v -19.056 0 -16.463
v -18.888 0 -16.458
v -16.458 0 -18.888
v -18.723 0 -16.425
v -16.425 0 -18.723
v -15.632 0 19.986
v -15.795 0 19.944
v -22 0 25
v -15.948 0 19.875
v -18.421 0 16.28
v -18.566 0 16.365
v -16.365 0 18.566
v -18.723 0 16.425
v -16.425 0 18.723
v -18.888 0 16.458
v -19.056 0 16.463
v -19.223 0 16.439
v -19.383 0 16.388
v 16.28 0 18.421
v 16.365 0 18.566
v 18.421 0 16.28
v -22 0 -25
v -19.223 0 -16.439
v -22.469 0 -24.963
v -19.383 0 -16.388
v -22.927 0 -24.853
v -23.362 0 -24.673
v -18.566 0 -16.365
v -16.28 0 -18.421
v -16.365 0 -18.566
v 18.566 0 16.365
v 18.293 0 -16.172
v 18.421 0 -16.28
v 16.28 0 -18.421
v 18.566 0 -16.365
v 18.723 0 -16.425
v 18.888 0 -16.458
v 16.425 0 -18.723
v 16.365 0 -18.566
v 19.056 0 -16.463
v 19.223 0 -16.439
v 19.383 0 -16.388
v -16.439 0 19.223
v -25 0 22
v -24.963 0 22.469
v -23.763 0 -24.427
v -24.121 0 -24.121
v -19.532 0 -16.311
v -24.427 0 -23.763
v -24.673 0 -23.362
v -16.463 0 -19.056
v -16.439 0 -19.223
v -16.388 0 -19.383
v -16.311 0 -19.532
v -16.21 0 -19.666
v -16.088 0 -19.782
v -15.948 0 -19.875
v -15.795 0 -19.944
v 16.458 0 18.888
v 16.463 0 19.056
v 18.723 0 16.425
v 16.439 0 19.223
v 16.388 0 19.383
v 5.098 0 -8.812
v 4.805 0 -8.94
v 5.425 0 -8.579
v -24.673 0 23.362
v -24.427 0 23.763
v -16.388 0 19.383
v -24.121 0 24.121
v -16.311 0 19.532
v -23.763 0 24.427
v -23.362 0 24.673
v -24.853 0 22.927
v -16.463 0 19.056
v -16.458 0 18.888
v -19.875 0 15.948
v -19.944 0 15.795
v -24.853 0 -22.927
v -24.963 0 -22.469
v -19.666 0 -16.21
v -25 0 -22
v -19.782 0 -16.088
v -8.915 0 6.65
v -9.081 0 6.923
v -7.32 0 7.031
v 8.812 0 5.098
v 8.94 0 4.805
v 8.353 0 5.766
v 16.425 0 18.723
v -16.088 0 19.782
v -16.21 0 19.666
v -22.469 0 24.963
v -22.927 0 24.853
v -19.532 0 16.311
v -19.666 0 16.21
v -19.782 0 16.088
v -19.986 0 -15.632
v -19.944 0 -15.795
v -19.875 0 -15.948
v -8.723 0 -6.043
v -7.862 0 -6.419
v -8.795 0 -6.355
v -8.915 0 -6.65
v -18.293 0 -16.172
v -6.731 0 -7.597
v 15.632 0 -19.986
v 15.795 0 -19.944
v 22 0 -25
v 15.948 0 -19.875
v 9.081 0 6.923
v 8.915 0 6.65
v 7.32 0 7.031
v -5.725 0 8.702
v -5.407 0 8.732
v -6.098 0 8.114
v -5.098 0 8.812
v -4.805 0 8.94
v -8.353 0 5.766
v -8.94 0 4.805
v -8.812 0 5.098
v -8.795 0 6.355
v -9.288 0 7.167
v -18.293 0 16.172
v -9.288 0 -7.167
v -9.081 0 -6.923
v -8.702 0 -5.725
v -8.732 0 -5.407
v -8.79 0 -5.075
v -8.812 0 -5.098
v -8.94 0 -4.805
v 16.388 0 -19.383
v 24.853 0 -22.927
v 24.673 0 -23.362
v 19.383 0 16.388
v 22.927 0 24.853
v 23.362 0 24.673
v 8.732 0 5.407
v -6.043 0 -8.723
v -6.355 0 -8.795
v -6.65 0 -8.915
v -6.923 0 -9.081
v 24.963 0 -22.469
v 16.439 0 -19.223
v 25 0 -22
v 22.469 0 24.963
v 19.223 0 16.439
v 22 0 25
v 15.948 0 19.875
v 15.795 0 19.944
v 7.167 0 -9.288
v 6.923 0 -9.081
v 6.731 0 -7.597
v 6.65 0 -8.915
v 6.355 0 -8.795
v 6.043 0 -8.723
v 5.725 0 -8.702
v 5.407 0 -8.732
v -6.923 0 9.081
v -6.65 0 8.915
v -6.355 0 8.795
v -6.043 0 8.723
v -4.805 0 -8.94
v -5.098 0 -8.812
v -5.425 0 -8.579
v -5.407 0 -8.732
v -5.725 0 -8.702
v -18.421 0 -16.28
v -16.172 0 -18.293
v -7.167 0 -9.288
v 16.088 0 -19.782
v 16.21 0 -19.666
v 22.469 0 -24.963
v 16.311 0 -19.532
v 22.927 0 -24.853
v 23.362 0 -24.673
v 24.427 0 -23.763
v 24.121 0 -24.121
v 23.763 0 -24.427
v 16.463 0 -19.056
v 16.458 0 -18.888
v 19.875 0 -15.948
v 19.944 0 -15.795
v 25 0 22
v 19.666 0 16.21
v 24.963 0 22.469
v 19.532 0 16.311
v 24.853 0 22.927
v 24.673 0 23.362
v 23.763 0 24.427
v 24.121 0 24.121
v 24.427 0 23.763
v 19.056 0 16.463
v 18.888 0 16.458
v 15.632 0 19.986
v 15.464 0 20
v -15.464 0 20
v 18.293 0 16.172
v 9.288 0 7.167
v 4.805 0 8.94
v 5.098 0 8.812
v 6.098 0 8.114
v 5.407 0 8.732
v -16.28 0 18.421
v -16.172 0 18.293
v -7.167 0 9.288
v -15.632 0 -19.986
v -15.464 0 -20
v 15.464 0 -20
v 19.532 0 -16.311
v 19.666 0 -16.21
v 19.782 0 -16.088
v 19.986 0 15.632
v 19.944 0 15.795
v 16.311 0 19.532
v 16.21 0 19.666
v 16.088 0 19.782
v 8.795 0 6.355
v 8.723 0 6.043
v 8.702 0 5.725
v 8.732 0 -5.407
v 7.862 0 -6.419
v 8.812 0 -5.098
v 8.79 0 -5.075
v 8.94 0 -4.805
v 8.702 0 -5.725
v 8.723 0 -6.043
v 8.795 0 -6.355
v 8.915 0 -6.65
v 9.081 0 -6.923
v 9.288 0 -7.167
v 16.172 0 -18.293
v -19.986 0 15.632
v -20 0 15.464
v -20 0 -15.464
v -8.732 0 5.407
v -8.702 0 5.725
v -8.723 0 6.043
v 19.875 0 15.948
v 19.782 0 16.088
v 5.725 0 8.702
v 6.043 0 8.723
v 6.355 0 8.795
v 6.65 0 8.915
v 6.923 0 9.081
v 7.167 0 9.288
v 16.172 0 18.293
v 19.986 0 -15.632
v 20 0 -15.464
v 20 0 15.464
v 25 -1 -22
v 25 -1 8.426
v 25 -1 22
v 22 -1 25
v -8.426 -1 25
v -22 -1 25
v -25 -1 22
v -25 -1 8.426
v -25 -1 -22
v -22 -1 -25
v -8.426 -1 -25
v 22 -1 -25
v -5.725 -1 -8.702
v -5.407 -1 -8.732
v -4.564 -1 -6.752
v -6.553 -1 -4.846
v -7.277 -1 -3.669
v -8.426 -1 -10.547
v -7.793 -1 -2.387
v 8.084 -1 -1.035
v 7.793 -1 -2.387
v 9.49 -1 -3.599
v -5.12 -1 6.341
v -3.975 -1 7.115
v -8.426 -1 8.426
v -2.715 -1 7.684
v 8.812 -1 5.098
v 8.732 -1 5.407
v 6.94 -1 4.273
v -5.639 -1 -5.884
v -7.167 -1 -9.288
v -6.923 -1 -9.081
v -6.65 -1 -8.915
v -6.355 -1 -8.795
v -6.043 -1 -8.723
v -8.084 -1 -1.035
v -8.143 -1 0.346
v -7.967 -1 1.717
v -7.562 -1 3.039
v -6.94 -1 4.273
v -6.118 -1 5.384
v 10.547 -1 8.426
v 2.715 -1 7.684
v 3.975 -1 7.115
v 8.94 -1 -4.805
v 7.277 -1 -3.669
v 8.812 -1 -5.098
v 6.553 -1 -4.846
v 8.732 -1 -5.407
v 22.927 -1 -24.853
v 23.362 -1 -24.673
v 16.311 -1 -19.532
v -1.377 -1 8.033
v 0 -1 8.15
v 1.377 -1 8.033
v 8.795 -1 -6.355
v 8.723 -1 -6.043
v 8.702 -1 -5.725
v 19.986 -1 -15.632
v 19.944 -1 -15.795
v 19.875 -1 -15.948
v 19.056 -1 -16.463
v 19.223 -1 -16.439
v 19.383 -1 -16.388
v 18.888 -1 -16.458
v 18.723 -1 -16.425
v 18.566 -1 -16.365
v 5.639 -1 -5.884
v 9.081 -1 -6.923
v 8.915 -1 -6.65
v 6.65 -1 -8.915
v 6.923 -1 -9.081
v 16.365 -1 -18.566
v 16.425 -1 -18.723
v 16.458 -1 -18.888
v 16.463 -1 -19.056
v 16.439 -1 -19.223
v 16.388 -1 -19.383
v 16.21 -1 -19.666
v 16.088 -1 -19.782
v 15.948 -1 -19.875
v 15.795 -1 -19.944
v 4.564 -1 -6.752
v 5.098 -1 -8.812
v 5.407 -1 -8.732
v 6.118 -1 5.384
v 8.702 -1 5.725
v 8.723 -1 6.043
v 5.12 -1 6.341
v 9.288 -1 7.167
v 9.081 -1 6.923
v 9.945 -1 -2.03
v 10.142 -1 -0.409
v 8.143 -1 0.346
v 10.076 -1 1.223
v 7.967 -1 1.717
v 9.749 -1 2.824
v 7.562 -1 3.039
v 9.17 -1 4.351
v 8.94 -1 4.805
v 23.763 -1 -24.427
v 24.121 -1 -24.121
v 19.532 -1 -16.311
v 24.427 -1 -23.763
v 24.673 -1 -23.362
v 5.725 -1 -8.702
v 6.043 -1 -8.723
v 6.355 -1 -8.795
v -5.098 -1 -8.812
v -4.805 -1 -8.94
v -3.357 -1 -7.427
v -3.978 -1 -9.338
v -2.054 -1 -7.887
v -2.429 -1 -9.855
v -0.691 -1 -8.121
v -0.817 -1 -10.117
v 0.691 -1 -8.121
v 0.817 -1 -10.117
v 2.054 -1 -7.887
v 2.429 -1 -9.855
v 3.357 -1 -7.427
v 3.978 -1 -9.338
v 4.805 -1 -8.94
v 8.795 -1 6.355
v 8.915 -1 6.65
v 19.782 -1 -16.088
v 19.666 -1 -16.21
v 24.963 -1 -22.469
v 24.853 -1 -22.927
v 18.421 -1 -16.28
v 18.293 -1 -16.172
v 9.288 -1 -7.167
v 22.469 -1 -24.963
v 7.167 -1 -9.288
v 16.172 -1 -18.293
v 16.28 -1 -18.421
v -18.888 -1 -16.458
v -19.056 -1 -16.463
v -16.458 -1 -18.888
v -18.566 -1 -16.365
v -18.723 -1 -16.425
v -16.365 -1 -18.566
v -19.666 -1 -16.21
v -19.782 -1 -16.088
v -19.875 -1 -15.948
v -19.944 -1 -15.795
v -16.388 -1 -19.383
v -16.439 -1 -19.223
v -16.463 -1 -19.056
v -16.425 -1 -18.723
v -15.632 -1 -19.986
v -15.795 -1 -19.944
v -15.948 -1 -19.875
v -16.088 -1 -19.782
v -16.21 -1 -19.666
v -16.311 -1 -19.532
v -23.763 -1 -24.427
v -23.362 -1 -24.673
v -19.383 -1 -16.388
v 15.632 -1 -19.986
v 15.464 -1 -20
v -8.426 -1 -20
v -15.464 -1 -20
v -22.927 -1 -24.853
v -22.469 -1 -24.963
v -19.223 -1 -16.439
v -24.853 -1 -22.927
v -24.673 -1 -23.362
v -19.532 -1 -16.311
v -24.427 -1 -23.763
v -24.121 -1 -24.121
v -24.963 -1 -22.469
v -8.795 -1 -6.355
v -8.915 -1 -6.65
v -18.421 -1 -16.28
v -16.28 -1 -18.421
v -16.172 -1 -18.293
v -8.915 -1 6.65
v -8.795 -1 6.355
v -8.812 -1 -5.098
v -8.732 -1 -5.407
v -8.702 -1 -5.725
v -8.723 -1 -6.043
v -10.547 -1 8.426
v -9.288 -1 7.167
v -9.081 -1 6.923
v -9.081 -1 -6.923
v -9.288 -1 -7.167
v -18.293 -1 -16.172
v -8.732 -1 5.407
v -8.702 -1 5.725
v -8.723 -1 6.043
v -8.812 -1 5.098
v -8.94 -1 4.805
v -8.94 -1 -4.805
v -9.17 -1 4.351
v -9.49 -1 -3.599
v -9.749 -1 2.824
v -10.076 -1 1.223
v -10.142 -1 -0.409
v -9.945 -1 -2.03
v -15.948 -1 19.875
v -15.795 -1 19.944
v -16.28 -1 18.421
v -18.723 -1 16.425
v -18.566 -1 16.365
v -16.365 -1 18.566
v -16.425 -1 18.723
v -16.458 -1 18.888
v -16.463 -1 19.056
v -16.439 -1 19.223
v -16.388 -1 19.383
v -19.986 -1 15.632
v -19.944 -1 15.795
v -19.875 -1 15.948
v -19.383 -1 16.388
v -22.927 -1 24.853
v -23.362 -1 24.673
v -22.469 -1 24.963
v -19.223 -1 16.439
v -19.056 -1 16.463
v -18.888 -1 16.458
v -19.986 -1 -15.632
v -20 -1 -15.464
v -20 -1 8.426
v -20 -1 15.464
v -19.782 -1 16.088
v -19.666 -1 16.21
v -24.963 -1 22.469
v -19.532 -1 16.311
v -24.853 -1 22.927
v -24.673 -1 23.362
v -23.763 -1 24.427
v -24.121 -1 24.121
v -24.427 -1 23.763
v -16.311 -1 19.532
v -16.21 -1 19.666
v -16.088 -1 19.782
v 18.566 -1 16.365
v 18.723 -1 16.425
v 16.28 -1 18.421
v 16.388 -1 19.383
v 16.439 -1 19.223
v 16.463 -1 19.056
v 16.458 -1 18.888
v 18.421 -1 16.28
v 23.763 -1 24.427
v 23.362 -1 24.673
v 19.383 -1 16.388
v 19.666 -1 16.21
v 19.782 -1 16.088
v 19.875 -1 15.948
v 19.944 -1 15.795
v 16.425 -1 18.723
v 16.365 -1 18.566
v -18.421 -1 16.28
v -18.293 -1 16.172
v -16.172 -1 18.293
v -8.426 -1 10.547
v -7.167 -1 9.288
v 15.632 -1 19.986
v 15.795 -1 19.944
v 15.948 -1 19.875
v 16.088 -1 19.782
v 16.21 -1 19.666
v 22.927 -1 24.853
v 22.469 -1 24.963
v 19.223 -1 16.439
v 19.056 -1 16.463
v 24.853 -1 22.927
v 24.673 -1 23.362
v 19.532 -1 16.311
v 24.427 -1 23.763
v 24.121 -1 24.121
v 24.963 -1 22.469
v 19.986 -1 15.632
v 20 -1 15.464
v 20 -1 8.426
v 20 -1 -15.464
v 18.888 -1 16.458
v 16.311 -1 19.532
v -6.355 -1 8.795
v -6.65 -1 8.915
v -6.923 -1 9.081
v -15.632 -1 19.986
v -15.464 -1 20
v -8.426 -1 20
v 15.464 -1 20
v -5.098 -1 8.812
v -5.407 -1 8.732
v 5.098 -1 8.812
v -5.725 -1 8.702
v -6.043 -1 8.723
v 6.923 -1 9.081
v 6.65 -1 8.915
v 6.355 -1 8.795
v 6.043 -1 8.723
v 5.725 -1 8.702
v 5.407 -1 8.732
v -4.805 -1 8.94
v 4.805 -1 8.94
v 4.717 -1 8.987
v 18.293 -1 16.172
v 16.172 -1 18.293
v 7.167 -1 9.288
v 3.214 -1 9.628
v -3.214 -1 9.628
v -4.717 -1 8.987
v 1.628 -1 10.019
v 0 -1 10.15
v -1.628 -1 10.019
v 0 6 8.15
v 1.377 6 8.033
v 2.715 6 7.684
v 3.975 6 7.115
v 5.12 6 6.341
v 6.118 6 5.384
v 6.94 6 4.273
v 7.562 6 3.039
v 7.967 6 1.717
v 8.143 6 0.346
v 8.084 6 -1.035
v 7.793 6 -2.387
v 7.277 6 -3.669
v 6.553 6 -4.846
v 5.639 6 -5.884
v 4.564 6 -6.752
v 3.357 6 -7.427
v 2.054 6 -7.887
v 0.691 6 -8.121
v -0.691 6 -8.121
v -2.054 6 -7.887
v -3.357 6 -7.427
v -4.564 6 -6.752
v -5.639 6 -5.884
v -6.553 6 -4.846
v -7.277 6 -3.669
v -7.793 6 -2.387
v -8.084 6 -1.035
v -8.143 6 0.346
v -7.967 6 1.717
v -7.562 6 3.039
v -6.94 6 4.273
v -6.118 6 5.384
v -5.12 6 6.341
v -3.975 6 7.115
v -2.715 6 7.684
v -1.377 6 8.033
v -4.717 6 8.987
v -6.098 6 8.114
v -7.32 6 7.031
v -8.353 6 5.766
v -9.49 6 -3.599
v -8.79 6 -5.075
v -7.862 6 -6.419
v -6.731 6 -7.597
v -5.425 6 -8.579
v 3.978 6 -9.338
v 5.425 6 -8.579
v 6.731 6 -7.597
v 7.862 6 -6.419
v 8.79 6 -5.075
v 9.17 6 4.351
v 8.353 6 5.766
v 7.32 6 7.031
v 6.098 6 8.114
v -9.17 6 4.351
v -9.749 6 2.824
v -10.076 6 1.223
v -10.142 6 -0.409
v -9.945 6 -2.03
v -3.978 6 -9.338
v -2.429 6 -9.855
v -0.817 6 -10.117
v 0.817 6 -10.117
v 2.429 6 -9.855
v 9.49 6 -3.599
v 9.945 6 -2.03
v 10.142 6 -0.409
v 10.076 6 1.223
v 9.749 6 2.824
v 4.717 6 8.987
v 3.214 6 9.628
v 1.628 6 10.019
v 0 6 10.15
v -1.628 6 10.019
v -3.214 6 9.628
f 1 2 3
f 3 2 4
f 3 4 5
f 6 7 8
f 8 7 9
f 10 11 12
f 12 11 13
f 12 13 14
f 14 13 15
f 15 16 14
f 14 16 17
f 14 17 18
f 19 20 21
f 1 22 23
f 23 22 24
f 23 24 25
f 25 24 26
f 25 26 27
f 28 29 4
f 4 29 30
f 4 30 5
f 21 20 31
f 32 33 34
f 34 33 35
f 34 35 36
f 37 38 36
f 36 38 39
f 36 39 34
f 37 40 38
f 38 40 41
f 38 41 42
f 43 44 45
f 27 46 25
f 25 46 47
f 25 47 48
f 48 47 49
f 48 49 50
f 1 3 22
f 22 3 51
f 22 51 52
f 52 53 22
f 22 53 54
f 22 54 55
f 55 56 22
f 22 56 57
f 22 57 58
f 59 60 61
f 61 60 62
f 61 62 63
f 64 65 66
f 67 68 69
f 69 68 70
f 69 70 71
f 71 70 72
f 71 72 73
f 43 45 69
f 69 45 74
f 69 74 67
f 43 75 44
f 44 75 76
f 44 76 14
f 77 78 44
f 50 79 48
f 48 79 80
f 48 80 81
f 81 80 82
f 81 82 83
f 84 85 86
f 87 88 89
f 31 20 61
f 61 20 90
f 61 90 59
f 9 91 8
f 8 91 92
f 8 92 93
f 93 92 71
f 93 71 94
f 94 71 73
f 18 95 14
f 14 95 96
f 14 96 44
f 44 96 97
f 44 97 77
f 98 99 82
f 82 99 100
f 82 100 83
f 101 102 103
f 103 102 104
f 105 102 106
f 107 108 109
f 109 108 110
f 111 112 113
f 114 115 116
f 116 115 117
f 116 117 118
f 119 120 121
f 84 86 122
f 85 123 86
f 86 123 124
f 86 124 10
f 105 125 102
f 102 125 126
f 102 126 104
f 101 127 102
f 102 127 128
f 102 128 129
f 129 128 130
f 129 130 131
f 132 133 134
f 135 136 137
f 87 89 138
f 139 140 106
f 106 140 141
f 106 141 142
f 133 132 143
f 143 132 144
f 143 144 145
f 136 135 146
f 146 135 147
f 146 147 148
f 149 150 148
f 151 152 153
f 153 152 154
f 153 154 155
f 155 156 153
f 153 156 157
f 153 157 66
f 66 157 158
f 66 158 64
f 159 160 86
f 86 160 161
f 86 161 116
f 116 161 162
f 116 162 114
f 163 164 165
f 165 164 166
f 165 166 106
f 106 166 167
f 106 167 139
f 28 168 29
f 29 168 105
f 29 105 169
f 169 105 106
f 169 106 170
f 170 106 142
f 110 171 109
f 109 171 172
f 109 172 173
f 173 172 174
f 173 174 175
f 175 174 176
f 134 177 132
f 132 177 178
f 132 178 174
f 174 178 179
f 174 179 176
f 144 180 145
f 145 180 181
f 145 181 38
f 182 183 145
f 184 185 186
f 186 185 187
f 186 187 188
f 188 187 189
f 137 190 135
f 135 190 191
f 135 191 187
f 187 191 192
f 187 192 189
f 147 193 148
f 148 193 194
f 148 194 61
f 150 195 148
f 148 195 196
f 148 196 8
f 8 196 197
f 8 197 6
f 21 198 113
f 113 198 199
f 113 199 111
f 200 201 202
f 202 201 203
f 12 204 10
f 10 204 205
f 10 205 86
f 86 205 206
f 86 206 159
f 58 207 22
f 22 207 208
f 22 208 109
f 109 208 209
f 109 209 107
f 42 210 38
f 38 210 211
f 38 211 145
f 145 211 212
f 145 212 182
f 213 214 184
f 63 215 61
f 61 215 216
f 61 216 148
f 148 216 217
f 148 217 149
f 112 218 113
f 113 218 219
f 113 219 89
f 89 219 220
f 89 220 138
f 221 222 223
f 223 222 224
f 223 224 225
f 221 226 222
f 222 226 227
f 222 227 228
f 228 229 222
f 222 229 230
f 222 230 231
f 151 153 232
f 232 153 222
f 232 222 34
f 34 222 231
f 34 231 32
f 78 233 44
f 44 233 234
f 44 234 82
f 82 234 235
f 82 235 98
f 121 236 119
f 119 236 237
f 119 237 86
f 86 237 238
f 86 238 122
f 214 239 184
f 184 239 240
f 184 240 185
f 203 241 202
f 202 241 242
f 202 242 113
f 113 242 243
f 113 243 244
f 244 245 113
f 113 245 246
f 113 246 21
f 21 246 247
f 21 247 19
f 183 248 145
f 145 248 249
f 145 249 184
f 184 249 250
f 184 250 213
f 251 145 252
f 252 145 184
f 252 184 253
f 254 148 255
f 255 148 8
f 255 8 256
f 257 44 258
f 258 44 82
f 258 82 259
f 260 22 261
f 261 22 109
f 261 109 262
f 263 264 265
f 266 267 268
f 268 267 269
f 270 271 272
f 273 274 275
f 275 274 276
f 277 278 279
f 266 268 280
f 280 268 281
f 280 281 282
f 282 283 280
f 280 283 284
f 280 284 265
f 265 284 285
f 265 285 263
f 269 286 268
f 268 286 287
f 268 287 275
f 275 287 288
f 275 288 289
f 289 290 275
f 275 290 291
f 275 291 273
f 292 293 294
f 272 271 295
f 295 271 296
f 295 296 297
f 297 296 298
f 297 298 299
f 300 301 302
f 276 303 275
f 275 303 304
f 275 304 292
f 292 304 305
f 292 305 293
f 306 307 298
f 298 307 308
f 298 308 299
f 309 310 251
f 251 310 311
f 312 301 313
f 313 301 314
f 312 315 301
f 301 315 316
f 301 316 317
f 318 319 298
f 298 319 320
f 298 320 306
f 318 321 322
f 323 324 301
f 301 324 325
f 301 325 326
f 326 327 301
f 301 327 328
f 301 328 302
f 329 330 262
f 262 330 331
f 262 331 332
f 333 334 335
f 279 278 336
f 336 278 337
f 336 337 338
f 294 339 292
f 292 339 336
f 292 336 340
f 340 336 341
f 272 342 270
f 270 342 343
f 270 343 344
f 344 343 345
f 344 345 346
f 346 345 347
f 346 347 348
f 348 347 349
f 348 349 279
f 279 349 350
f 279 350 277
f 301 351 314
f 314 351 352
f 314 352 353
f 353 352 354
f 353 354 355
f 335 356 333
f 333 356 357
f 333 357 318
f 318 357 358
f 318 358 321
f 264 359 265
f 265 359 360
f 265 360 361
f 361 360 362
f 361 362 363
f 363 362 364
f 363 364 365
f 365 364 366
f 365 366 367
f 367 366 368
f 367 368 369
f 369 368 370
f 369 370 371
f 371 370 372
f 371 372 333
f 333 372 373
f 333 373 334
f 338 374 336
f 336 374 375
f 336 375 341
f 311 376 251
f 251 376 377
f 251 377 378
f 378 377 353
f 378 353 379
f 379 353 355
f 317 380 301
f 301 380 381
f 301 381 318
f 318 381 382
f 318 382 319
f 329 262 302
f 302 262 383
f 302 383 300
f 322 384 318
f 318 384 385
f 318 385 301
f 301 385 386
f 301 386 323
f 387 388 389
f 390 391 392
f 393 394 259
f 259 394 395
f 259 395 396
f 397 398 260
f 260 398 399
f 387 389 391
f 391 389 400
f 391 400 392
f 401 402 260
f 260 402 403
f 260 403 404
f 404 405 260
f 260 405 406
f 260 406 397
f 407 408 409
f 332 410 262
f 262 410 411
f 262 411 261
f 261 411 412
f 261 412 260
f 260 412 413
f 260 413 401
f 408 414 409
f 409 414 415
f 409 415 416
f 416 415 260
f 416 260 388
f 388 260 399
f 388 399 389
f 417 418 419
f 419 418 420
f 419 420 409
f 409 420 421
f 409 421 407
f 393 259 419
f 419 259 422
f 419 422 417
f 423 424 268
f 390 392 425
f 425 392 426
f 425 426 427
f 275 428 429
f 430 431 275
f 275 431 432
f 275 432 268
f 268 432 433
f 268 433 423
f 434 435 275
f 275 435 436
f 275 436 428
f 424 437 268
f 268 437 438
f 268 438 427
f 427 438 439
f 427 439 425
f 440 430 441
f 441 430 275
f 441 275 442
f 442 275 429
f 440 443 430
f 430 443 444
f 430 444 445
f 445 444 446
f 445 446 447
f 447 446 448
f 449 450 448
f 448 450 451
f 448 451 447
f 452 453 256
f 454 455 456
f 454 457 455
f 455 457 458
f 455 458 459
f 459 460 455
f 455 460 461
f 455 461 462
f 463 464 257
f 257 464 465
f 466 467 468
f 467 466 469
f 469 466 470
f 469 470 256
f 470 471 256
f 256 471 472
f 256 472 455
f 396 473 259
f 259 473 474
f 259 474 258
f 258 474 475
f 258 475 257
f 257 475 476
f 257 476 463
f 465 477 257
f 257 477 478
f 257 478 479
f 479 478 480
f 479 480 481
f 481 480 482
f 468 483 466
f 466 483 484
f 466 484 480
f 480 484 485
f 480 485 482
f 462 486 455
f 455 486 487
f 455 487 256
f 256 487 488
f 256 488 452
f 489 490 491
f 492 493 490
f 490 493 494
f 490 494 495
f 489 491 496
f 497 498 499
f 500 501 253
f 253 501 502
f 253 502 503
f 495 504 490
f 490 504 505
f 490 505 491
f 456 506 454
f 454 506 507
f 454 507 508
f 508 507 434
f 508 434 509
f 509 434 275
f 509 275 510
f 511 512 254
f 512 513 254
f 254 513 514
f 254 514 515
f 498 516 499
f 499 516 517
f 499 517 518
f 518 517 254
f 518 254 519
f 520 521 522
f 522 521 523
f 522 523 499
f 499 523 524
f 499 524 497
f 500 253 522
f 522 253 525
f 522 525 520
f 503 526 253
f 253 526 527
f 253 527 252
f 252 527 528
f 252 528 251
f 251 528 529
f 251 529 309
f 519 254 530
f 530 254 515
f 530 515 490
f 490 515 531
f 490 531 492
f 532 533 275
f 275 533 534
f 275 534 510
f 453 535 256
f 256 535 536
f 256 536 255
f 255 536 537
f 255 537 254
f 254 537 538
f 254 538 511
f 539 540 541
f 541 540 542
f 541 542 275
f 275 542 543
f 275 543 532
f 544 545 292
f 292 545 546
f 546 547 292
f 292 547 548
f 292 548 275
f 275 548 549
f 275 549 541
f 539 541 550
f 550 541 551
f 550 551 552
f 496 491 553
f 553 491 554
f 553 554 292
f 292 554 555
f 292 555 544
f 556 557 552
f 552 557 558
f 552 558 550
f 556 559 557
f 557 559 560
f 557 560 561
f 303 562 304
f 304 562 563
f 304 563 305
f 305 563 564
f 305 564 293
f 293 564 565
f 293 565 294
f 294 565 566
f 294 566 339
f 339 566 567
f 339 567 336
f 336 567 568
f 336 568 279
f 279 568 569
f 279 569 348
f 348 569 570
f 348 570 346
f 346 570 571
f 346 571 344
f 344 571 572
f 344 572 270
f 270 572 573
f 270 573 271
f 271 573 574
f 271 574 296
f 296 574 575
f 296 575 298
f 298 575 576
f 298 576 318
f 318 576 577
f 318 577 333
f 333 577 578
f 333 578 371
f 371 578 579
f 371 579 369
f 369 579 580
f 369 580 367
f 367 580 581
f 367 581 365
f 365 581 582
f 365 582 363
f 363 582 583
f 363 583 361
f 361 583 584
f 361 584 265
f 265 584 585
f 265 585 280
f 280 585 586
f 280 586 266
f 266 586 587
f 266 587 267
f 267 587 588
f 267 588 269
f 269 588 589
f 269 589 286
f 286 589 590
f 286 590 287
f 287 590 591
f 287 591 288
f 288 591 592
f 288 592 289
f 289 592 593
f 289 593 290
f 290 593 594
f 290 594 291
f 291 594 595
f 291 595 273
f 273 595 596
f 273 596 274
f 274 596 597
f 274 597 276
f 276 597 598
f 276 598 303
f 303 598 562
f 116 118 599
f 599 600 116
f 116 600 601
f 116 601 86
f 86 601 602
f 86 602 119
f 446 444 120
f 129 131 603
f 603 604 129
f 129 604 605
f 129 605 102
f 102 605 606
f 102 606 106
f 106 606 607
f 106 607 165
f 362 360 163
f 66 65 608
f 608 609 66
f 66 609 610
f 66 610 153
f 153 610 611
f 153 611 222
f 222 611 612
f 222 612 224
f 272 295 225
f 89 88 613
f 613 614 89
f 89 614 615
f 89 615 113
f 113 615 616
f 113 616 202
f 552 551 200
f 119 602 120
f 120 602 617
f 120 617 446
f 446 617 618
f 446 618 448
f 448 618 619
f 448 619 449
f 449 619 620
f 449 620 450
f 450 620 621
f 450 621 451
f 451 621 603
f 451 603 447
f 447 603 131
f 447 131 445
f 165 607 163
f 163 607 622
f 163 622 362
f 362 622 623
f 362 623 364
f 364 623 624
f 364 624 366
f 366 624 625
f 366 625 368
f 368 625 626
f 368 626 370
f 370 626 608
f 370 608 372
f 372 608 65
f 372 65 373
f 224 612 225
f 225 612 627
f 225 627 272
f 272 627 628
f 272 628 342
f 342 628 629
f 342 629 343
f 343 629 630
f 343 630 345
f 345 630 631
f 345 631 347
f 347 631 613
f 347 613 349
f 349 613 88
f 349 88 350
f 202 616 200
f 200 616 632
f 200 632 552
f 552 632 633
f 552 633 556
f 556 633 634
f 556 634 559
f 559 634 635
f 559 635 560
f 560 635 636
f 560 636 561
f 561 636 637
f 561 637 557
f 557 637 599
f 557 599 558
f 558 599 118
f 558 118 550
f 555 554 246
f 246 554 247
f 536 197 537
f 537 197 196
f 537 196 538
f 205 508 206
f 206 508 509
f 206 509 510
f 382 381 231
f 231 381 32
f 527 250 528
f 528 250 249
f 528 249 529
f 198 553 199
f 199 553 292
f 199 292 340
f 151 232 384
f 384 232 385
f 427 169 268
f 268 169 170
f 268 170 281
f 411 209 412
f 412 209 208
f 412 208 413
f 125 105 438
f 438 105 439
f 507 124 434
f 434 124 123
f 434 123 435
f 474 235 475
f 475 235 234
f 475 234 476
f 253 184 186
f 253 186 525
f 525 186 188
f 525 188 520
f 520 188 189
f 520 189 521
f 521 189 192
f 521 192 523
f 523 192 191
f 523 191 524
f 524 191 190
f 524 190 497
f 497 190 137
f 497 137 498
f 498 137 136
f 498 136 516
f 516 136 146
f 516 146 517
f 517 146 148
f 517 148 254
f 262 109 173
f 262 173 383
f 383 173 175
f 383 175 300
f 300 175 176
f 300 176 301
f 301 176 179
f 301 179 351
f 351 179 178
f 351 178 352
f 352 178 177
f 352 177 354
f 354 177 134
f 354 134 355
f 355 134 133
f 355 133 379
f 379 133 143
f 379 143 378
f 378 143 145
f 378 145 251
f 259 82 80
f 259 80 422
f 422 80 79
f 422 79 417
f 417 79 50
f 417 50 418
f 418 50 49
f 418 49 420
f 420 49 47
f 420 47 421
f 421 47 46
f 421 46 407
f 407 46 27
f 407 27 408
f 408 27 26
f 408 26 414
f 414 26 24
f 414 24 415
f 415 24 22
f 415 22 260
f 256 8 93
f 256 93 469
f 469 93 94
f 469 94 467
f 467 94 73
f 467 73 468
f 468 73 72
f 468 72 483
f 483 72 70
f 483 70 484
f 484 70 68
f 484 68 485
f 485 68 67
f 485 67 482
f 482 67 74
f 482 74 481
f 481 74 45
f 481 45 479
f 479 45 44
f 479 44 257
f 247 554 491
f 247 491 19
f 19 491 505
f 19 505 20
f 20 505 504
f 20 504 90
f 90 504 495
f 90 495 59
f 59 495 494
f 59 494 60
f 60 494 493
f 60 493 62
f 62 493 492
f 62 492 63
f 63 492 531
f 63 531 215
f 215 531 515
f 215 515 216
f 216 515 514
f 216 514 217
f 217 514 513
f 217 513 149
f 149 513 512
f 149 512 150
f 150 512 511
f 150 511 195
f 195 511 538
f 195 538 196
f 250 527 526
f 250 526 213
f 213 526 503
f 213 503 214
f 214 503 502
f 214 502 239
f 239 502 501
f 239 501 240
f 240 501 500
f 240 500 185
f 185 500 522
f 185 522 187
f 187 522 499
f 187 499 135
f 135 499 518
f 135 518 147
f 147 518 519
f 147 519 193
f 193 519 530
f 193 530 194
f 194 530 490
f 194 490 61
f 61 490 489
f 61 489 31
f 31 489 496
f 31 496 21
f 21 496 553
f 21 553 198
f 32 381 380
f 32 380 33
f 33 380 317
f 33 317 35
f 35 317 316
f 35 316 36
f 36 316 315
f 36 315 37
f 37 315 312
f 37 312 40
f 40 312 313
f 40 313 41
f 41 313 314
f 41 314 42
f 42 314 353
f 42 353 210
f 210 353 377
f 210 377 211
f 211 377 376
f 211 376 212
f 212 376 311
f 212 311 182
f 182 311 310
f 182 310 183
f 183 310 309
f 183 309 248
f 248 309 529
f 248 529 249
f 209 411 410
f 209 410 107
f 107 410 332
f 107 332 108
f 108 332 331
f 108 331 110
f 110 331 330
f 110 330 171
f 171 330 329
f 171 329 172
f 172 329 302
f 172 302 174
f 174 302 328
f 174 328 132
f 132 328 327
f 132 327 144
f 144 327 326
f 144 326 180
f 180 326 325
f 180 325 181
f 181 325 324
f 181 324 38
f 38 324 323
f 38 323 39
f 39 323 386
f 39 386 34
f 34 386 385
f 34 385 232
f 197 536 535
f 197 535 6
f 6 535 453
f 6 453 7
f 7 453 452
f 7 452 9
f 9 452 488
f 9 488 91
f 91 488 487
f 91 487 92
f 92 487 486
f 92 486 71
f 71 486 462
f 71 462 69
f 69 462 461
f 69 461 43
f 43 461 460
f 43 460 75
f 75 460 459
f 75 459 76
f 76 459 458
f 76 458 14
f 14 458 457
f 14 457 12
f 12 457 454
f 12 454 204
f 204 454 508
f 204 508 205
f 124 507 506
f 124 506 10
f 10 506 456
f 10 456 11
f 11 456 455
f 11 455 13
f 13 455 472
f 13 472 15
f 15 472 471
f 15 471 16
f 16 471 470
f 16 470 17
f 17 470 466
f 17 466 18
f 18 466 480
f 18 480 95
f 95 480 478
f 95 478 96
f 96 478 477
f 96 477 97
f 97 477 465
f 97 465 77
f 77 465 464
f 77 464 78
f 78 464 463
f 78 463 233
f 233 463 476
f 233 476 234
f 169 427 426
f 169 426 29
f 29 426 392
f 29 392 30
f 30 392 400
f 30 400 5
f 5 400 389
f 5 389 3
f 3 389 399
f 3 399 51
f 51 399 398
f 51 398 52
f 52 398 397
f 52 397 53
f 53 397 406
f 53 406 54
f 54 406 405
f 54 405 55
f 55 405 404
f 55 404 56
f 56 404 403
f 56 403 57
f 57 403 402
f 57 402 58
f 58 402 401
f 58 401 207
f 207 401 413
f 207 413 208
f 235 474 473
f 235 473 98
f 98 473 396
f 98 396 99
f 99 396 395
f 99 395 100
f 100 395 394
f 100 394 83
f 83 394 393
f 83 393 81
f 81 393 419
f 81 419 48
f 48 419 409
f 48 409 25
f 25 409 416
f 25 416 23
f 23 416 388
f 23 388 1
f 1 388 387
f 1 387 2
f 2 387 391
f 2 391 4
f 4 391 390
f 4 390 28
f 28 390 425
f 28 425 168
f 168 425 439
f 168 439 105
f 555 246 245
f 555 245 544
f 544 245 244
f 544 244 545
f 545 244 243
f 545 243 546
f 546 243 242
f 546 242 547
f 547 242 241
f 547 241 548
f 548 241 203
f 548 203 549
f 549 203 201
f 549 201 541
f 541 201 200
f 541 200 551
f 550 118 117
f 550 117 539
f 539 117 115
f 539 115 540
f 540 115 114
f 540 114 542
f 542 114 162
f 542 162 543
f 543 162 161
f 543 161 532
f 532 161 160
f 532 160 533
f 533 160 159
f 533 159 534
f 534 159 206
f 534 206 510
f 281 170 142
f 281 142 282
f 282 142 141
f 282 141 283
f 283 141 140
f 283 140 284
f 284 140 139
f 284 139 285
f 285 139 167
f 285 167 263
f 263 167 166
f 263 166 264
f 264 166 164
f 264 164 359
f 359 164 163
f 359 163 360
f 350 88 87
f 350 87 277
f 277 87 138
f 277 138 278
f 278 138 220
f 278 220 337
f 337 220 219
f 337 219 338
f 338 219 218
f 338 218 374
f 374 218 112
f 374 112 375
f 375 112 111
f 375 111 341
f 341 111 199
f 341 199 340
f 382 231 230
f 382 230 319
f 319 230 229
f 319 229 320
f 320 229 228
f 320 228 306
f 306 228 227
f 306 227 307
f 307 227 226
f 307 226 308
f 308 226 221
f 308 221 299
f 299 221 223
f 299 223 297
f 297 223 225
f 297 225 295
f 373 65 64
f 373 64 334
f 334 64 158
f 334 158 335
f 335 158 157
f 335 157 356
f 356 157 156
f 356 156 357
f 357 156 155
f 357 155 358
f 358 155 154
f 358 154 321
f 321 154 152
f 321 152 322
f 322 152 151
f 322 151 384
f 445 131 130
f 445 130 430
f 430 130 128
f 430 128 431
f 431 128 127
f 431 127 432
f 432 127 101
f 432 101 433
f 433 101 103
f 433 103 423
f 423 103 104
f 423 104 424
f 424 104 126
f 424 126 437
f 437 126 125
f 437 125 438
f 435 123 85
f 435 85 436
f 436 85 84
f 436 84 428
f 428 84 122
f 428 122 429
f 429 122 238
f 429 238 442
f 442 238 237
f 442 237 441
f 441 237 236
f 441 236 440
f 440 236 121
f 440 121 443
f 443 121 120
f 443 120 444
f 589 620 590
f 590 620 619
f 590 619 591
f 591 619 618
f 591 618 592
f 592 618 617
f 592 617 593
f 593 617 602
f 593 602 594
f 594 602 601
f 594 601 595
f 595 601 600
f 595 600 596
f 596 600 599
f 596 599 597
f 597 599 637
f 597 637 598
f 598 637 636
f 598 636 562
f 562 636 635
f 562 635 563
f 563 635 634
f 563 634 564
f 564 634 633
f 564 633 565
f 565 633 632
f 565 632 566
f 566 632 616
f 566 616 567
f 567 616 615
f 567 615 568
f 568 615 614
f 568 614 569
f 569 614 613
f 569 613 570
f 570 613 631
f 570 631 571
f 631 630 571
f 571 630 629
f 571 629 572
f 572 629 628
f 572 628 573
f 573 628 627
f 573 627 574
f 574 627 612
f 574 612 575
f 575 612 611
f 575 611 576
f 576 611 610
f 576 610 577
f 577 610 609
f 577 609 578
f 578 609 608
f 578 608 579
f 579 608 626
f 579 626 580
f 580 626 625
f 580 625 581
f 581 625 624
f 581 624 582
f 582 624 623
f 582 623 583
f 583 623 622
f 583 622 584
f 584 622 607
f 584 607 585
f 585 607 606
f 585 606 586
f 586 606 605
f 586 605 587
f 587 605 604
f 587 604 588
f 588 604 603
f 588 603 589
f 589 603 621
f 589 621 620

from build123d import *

# Parameters (mm, degrees)
SKETCH1_W           = 50
SKETCH1_H           = 50
SKETCH1_R           = 8.15
BASE_FLANGE1_DEPTH  = 1
FILLET1_R           = 3
FILLET2_R           = 1
FILLET3_R           = 2
BOSS_EXTRUDE1_START = 6
SKETCH2_R           = 10.15
SKETCH2_R_2         = 8.15
BOSS_EXTRUDE1_DEPTH = 6


# Sheet-metal steps are written as plain solids
with BuildPart() as part:
    # Sketch1 → Base-Flange1 (new body)
    with BuildSketch(Plane(origin=(0, 0, 0), x_dir=(1, 0, 0), z_dir=(0, 1, 0))):
        Rectangle(SKETCH1_W, SKETCH1_H)
        with Locations(Location((0, 0, 0), (0, 0, 270))):
            Circle(SKETCH1_R, mode=Mode.SUBTRACT)
        with BuildLine():
            Line((20, 17.878679656), (20, -17.878679656))
            Line((20, -17.878679656), (8.15898744, -6.037667096))
            ThreePointArc((8.15898744, -6.037667096), (10.15, 0), (8.15898744, 6.037667096))
            Line((8.15898744, 6.037667096), (20, 17.878679656))
        make_face(mode=Mode.SUBTRACT)
        with BuildLine():
            Line((17.878679656, -20), (-17.878679656, -20))
            Line((-17.878679656, -20), (-6.037667096, -8.15898744))
            ThreePointArc((-6.037667096, -8.15898744), (0, -10.15), (6.037667096, -8.15898744))
            Line((6.037667096, -8.15898744), (17.878679656, -20))
        make_face(mode=Mode.SUBTRACT)
        with BuildLine():
            Line((-20, -17.878679656), (-20, 17.878679656))
            Line((-20, 17.878679656), (-8.15898744, 6.037667096))
            ThreePointArc((-8.15898744, 6.037667096), (-10.15, 0), (-8.15898744, -6.037667096))
            Line((-8.15898744, -6.037667096), (-20, -17.878679656))
        make_face(mode=Mode.SUBTRACT)
        with BuildLine():
            Line((-17.878679656, 20), (17.878679656, 20))
            Line((17.878679656, 20), (6.037667096, 8.15898744))
            ThreePointArc((6.037667096, 8.15898744), (0, 10.15), (-6.037667096, 8.15898744))
            Line((-6.037667096, 8.15898744), (-17.878679656, 20))
        make_face(mode=Mode.SUBTRACT)
    extrude(amount=-BASE_FLANGE1_DEPTH)

    # Fillet1
    fillet1_edges = [part.edges().sort_by_distance(p)[0] for p in [
        (25, -0.5, 25),
        (-25, -0.5, 25),
        (-25, -0.5, -25),
        (25, -0.5, -25),
    ]]
    fillet(fillet1_edges, radius=FILLET1_R)

    # Fillet2
    fillet2_edges = [part.edges().sort_by_distance(p)[0] for p in [
        (17.878679656, -0.5, 20),
        (-17.878679656, -0.5, 20),
        (20, -0.5, -17.878679656),
        (20, -0.5, 17.878679656),
        (17.878679656, -0.5, -20),
        (-17.878679656, -0.5, -20),
        (-20, -0.5, -17.878679656),
        (-20, -0.5, 17.878679656),
    ]]
    fillet(fillet2_edges, radius=FILLET2_R)

    # Fillet3
    fillet3_edges = [part.edges().sort_by_distance(p)[0] for p in [
        (-6.037667096, -0.5, 8.15898744),
        (6.037667096, -0.5, 8.15898744),
        (8.15898744, -0.5, -6.037667096),
        (8.15898744, -0.5, 6.037667096),
        (6.037667096, -0.5, -8.15898744),
        (-6.037667096, -0.5, -8.15898744),
        (-8.15898744, -0.5, -6.037667096),
        (-8.15898744, -0.5, 6.037667096),
    ]]
    fillet(fillet3_edges, radius=FILLET3_R)

    # Sketch2 → Boss-Extrude1 (add)
    with BuildSketch(Plane(origin=(0, 0, 0), x_dir=(1, 0, 0), z_dir=(0, 1, 0)).offset(BOSS_EXTRUDE1_START)):
        with Locations(Location((0, 0, 0), (0, 0, 270))):
            Circle(SKETCH2_R)
        with Locations(Location((0, 0, 0), (0, 0, 270))):
            Circle(SKETCH2_R_2, mode=Mode.SUBTRACT)
    extrude(amount=-BOSS_EXTRUDE1_DEPTH)


solid = part.part
